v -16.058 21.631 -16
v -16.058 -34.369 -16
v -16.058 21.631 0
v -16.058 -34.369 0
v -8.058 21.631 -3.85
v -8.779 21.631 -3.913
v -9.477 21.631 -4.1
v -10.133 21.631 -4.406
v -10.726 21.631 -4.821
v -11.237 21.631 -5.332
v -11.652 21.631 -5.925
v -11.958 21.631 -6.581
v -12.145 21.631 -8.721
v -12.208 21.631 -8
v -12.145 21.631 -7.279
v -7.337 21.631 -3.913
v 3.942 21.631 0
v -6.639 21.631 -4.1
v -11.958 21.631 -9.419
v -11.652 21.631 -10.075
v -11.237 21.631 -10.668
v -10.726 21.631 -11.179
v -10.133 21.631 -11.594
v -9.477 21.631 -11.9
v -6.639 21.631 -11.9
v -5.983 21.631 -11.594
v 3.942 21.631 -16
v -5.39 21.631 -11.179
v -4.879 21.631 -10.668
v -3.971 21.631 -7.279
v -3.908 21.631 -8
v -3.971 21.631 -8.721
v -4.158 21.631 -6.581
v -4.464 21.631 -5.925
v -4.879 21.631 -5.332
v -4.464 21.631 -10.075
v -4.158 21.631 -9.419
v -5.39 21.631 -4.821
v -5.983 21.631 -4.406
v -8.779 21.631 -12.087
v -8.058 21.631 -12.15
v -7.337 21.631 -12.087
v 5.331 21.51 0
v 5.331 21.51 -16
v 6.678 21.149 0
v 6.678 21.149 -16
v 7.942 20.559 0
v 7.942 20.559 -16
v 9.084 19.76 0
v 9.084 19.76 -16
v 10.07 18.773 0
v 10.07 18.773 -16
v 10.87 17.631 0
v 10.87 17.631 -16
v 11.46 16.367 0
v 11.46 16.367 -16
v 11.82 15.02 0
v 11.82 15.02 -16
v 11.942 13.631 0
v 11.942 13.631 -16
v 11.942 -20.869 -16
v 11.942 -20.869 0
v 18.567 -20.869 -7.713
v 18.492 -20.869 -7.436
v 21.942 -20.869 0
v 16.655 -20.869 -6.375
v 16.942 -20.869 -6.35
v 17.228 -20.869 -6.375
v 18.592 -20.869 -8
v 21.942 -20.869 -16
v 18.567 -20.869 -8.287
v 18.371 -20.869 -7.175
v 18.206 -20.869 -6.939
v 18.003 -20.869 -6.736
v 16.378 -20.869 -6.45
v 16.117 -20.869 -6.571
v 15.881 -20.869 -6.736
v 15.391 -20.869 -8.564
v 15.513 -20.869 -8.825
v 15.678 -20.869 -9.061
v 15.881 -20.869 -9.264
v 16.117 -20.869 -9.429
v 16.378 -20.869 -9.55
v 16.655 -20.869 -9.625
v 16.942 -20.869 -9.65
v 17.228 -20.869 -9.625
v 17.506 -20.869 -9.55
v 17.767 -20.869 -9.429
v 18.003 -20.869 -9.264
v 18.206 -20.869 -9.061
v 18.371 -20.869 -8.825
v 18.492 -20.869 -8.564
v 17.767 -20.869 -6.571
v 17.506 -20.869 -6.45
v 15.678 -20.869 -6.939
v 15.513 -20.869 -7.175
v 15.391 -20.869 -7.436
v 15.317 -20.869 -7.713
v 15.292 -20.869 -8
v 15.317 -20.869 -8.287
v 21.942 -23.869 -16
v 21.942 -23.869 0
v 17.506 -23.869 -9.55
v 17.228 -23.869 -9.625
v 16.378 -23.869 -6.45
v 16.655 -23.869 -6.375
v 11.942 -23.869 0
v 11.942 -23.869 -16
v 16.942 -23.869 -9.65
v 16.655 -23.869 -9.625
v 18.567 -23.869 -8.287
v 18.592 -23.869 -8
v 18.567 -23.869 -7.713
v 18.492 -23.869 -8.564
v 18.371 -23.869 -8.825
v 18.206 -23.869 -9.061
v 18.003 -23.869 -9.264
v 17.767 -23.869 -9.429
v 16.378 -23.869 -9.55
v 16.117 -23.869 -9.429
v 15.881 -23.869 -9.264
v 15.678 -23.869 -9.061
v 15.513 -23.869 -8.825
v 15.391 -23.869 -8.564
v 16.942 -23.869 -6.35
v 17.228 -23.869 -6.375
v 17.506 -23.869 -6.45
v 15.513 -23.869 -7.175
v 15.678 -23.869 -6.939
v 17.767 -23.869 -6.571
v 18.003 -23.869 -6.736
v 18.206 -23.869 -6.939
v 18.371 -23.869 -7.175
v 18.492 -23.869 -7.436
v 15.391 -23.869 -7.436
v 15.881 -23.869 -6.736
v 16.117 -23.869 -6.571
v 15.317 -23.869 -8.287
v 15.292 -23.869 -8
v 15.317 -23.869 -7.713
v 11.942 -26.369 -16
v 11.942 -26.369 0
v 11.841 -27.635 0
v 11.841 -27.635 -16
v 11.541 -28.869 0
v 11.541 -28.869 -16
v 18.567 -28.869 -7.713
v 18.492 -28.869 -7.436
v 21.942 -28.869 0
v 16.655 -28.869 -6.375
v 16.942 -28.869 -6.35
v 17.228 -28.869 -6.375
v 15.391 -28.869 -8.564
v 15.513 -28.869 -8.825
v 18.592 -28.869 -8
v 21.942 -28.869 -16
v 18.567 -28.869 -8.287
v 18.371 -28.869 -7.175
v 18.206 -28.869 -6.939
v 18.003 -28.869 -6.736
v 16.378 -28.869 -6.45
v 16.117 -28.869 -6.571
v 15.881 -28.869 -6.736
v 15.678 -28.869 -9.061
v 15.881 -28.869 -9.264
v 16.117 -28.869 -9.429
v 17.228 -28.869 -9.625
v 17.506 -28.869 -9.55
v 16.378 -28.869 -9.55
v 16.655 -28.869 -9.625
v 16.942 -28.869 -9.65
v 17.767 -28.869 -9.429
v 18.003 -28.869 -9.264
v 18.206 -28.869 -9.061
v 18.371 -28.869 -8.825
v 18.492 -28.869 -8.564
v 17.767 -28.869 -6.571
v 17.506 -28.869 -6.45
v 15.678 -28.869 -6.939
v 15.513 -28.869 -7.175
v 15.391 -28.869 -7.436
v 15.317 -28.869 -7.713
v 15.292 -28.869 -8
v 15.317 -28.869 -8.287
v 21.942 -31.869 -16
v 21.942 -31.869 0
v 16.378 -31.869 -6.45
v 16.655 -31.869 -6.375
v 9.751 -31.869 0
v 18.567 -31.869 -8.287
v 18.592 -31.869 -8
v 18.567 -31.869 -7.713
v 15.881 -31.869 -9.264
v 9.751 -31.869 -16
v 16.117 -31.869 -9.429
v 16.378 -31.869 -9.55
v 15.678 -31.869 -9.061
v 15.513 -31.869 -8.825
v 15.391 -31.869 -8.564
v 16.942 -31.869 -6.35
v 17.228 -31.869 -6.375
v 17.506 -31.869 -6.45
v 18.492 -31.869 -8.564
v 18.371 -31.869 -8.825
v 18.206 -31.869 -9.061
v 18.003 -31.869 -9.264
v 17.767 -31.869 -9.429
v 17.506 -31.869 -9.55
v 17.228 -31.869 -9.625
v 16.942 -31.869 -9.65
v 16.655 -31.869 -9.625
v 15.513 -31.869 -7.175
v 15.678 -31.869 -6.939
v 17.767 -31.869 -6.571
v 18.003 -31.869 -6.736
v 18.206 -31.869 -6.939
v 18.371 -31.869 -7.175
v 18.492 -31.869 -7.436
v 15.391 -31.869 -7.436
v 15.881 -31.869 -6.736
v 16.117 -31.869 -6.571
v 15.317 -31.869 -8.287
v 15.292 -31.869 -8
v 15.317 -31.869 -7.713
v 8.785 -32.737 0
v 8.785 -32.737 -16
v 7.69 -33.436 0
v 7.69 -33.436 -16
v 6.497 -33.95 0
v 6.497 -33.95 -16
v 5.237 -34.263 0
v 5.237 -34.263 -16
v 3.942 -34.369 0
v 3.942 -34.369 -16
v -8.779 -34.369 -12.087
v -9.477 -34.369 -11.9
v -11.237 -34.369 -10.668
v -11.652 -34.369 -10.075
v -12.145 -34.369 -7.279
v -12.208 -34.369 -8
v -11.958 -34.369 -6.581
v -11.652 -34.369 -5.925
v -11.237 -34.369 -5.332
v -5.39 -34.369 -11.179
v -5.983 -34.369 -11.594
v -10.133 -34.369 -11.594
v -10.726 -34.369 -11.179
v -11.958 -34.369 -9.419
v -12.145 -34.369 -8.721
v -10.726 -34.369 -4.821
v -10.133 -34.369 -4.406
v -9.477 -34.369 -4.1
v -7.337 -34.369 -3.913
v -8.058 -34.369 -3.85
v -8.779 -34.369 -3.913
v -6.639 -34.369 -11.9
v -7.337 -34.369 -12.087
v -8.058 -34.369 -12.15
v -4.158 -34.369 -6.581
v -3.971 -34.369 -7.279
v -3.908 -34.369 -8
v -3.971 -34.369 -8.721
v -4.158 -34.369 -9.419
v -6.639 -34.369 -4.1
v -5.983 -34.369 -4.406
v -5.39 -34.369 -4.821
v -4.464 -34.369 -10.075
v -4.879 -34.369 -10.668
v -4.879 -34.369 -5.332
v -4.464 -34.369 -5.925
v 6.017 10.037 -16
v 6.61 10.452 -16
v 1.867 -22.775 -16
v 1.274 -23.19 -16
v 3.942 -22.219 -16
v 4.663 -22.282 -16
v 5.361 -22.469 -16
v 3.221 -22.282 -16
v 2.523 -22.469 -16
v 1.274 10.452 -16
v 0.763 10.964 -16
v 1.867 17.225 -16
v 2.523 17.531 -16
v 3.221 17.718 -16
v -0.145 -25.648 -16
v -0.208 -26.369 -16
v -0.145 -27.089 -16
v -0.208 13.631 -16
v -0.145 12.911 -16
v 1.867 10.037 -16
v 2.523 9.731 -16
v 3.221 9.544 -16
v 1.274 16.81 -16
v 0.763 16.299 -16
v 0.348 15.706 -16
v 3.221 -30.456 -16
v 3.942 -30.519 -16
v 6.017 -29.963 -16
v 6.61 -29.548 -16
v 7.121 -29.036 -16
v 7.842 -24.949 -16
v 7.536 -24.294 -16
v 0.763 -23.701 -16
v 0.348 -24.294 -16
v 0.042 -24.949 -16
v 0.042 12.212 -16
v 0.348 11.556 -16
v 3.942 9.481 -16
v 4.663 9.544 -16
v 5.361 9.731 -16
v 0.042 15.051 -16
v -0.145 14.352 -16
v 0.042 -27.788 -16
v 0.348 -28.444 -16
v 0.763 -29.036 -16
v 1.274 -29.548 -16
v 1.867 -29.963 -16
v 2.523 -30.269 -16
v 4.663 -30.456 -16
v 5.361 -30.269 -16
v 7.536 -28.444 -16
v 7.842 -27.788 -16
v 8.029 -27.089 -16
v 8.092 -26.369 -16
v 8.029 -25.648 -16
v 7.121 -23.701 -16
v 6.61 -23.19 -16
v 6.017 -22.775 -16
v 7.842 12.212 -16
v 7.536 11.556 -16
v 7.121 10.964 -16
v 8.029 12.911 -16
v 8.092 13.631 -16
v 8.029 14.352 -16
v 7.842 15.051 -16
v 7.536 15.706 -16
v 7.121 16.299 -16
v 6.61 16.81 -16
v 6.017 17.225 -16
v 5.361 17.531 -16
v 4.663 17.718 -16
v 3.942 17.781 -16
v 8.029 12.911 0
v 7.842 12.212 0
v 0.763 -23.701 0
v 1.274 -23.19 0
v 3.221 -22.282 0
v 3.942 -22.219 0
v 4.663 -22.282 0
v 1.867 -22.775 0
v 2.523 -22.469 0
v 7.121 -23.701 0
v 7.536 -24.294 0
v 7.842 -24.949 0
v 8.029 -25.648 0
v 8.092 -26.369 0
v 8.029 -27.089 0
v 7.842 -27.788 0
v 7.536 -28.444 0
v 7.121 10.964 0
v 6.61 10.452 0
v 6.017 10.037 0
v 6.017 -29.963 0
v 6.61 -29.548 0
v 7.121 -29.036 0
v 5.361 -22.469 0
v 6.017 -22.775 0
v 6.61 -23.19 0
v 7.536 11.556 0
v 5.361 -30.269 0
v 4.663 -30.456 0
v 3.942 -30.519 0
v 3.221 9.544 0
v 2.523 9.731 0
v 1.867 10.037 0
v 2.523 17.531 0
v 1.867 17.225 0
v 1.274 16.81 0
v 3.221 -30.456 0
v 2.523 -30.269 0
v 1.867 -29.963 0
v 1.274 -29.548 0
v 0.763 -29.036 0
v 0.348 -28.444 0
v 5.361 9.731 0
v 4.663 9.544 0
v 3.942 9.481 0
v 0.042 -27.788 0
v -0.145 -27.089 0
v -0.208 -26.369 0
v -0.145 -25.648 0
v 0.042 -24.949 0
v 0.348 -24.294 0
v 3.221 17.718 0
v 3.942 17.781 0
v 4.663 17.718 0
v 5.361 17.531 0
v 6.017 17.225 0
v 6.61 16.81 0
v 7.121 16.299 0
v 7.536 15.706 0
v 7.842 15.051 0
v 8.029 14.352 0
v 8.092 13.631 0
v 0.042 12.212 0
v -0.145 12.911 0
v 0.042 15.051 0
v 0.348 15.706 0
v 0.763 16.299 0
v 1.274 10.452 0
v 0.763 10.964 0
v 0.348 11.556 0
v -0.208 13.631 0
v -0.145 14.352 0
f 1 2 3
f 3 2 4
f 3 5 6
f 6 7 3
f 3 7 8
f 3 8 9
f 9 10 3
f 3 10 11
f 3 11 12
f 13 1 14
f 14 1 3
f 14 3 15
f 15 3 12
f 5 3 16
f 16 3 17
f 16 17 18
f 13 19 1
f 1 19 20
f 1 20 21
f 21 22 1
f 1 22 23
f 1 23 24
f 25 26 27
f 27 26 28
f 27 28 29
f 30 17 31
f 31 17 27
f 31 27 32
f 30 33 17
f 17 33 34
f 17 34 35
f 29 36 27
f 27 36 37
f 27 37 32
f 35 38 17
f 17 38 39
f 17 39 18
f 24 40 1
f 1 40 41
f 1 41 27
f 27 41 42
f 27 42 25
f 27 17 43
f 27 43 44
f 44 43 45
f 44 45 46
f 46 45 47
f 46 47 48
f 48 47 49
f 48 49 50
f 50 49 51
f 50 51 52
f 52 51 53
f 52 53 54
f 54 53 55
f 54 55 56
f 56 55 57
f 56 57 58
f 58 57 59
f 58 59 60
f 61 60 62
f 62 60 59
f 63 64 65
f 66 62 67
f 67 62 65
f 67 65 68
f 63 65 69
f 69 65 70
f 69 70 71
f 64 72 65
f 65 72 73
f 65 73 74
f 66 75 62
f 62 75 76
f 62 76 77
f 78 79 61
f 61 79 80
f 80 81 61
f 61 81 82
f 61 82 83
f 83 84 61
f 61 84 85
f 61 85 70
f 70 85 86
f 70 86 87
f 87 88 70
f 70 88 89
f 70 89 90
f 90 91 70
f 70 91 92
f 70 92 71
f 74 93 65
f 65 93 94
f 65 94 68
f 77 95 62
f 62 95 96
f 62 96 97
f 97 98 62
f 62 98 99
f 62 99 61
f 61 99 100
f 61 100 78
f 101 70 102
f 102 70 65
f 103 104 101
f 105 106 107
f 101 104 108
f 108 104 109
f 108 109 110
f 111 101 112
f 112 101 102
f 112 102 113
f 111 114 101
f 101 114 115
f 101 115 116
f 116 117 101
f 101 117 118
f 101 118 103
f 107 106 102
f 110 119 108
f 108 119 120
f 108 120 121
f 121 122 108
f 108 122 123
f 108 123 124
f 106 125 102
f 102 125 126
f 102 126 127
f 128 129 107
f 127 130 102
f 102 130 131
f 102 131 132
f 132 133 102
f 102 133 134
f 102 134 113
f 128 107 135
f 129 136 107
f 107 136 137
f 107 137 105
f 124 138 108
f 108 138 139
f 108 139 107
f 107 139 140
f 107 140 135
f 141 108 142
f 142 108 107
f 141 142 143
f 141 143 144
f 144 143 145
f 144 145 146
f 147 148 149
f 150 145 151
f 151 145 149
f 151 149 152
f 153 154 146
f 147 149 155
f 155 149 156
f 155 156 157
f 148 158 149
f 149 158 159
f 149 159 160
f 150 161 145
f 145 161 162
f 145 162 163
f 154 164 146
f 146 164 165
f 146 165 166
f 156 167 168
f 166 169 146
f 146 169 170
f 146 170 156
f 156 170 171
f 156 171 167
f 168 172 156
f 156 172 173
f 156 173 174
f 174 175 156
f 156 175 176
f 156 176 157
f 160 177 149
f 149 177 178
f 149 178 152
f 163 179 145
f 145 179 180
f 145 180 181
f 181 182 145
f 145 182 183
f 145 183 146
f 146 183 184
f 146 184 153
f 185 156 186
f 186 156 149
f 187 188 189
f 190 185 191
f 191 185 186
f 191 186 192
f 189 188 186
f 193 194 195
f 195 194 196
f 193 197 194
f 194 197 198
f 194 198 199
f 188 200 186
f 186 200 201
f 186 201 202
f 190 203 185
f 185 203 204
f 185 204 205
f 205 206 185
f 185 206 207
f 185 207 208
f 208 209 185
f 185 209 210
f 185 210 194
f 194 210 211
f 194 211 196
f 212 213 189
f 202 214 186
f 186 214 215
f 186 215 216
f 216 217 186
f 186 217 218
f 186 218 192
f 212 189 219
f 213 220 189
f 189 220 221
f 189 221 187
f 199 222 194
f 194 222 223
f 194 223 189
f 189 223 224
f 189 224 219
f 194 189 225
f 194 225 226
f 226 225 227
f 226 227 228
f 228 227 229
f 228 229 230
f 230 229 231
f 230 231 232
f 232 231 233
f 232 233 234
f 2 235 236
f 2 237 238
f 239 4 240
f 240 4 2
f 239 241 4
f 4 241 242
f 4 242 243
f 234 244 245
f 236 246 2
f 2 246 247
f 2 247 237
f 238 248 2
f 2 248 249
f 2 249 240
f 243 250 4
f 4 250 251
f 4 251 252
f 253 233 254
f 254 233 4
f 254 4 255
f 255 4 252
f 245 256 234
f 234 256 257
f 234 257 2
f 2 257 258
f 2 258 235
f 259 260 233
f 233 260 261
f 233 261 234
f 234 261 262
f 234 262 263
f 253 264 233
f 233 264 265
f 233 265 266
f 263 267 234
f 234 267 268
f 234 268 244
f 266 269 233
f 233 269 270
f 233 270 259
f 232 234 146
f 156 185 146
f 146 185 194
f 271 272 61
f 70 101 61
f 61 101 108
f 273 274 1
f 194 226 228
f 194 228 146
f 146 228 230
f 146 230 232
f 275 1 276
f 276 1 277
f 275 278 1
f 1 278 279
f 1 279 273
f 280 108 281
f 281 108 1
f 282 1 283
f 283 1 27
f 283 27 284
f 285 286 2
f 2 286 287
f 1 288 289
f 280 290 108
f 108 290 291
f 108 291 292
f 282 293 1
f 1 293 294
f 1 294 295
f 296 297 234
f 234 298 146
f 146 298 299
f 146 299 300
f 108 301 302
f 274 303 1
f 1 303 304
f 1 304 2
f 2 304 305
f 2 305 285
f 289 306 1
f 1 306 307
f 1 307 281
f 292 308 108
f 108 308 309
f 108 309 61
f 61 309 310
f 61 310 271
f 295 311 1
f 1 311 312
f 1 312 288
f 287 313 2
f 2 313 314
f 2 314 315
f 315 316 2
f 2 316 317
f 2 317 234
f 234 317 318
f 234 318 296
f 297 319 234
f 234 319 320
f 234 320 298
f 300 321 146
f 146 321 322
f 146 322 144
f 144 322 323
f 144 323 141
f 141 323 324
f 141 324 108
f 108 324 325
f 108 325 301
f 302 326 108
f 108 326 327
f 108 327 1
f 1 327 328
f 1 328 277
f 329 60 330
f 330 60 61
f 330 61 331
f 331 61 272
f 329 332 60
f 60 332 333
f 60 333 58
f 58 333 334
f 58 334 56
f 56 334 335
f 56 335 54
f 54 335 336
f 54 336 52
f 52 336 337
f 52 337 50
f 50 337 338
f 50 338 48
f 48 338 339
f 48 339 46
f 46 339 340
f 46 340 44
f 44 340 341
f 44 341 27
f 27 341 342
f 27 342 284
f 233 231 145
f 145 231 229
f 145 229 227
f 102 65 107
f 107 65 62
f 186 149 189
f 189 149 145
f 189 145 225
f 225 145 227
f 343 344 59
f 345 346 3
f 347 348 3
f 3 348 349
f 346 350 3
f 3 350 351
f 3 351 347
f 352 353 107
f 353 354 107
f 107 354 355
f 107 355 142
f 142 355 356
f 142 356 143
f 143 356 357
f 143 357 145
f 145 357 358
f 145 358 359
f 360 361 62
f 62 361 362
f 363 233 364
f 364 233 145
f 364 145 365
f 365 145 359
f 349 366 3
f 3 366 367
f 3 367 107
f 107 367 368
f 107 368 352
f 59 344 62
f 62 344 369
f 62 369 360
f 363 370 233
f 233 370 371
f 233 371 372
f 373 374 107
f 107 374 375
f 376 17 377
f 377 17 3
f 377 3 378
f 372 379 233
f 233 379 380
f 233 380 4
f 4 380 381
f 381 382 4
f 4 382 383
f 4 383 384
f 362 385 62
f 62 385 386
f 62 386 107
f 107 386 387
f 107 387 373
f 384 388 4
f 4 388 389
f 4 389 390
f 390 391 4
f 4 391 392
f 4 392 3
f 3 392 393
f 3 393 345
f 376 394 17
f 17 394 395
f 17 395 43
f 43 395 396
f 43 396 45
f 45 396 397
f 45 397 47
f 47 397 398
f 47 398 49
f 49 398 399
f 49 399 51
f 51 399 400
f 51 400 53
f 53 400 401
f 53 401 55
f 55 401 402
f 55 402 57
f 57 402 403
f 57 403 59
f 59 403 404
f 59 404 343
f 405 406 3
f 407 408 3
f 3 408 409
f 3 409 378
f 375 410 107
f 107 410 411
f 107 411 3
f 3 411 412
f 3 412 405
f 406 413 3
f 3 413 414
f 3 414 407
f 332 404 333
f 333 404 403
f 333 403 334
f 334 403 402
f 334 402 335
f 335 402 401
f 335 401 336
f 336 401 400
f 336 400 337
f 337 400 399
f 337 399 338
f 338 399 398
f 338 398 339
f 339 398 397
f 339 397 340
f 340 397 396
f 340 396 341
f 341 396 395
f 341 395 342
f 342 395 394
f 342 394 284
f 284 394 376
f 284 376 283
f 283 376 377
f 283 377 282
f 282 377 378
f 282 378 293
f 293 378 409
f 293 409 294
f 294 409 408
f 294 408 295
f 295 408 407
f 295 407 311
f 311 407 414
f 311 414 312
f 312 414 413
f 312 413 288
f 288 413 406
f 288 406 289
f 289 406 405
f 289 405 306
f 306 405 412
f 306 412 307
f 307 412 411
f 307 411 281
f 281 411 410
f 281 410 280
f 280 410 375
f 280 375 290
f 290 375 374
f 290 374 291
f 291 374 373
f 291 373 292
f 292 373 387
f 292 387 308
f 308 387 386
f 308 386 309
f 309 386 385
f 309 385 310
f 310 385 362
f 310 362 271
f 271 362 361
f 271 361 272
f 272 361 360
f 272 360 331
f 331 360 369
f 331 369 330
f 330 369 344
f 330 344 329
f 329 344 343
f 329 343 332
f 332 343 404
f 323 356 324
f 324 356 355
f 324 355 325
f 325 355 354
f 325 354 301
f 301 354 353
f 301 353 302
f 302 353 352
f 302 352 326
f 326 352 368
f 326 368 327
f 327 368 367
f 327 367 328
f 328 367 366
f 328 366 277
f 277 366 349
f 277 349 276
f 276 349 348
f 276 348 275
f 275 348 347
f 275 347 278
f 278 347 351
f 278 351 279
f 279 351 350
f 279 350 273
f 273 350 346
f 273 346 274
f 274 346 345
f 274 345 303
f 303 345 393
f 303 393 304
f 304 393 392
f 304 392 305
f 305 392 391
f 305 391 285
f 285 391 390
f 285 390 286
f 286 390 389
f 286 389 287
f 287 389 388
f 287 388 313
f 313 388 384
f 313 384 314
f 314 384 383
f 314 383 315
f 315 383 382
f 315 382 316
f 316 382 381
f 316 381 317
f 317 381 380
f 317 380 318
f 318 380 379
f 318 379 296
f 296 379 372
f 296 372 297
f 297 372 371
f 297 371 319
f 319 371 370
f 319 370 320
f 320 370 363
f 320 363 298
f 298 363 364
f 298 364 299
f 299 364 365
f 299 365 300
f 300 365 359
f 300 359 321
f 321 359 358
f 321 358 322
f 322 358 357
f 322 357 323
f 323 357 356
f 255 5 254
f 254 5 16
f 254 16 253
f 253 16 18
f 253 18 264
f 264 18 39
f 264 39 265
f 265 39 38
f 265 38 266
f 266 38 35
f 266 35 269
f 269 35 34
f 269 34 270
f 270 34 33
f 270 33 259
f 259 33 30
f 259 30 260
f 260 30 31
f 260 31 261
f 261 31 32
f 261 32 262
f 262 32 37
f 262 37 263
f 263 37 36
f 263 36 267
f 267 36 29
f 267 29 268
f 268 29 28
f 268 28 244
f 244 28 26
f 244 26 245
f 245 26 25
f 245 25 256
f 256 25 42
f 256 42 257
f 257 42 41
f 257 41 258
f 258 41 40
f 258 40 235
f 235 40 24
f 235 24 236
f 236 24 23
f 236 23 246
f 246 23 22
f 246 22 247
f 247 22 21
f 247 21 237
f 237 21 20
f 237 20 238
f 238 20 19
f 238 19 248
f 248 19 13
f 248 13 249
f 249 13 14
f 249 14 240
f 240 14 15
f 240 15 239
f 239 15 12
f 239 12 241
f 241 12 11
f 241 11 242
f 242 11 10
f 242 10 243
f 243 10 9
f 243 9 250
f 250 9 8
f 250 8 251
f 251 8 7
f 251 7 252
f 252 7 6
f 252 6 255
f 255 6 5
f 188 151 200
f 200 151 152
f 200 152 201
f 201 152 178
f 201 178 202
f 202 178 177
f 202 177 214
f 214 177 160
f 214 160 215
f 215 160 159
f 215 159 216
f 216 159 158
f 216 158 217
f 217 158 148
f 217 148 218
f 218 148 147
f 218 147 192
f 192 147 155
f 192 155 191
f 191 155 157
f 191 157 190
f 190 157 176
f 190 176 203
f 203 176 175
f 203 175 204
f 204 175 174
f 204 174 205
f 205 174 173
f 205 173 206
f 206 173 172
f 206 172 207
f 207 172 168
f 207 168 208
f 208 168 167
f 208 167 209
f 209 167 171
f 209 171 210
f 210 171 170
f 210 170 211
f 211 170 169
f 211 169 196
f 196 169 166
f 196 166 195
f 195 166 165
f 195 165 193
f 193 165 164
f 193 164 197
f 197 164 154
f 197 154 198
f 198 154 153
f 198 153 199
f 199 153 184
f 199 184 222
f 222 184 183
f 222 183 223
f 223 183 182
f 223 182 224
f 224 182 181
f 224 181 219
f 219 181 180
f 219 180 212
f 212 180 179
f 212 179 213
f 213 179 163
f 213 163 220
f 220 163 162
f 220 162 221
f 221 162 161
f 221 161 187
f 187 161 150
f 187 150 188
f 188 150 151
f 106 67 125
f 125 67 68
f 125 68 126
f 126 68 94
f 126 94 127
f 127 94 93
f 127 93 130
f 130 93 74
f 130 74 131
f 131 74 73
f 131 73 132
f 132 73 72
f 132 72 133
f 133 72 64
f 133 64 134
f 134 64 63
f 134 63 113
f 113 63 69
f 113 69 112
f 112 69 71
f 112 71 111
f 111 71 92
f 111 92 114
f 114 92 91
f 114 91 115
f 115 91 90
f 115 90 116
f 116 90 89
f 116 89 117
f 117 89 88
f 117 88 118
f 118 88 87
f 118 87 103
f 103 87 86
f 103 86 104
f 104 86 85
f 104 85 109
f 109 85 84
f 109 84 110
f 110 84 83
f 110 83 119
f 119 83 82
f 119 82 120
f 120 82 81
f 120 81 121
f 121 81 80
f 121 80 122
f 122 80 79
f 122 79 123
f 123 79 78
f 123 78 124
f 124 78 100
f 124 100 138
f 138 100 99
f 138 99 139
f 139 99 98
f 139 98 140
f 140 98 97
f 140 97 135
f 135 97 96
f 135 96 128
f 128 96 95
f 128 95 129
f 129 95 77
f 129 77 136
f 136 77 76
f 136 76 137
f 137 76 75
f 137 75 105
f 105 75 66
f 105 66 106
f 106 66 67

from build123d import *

# Parameters (mm, degrees)
SKETCH1_R           = 4.15
BOSS_EXTRUDE1_DEPTH = 16
SKETCH2_R           = 4.15
CUT_EXTRUDE1_DEPTH  = 63.237043653
SKETCH3_R           = 1.65
CUT_EXTRUDE2_DEPTH  = 51.435102881


with BuildPart() as part:
    # Sketch1 → Boss-Extrude1 (new body)
    with BuildSketch(Plane.XY):
        with BuildLine():
            Line((11.941959863, -20.868835105), (21.941959863, -20.868835105))
            Line((21.941959863, -20.868835105), (21.941959863, -23.868835105))
            Line((21.941959863, -23.868835105), (11.941959863, -23.868835105))
            Line((11.941959863, -23.868835105), (11.941959863, -26.368835105))
            ThreePointArc((11.941959863, -26.368835105), (11.841160348, -27.63478601), (11.541301939, -28.868835105))
            Line((11.541301939, -28.868835105), (21.941959863, -28.868835105))
            Line((21.941959863, -28.868835105), (21.941959863, -31.868835105))
            Line((21.941959863, -31.868835105), (9.751434882, -31.868835105))
            ThreePointArc((9.751434882, -31.868835105), (7.104237523, -33.717304334), (3.941959863, -34.368835105))
            Line((3.941959863, -34.368835105), (-16.058040137, -34.368835105))
            Line((-16.058040137, -34.368835105), (-16.058040137, 21.631164895))
            Line((-16.058040137, 21.631164895), (3.941959863, 21.631164895))
            ThreePointArc((3.941959863, 21.631164895), (9.598814112, 19.288019144), (11.941959863, 13.631164895))
            Line((11.941959863, 13.631164895), (11.941959863, -20.868835105))
        make_face()
        with Locations((3.941959863, 13.631164895)):
            Circle(SKETCH1_R, mode=Mode.SUBTRACT)
        with Locations((3.941959863, -26.368835105)):
            Circle(SKETCH1_R, mode=Mode.SUBTRACT)
    extrude(amount=-BOSS_EXTRUDE1_DEPTH)

    # Sketch2 → Cut-Extrude1 (cut, through all)
    with BuildSketch(Plane(origin=(0, 21.631164895, 0), x_dir=(1, 0, 0), z_dir=(0, 1, 0))):
        with Locations(Location((-8.058040137, 8, 0), (0, 0, 270))):
            Circle(SKETCH2_R)
    extrude(amount=-CUT_EXTRUDE1_DEPTH, mode=Mode.SUBTRACT)

    # Sketch3 → Cut-Extrude2 (cut, through all)
    with BuildSketch(Plane(origin=(0, -20.868835105, 0), x_dir=(1, 0, 0), z_dir=(0, 1, 0))):
        with Locations(Location((16.941959863, 8, 0), (0, 0, 270))):
            Circle(SKETCH3_R)
    extrude(amount=-CUT_EXTRUDE2_DEPTH, mode=Mode.SUBTRACT)


solid = part.part
